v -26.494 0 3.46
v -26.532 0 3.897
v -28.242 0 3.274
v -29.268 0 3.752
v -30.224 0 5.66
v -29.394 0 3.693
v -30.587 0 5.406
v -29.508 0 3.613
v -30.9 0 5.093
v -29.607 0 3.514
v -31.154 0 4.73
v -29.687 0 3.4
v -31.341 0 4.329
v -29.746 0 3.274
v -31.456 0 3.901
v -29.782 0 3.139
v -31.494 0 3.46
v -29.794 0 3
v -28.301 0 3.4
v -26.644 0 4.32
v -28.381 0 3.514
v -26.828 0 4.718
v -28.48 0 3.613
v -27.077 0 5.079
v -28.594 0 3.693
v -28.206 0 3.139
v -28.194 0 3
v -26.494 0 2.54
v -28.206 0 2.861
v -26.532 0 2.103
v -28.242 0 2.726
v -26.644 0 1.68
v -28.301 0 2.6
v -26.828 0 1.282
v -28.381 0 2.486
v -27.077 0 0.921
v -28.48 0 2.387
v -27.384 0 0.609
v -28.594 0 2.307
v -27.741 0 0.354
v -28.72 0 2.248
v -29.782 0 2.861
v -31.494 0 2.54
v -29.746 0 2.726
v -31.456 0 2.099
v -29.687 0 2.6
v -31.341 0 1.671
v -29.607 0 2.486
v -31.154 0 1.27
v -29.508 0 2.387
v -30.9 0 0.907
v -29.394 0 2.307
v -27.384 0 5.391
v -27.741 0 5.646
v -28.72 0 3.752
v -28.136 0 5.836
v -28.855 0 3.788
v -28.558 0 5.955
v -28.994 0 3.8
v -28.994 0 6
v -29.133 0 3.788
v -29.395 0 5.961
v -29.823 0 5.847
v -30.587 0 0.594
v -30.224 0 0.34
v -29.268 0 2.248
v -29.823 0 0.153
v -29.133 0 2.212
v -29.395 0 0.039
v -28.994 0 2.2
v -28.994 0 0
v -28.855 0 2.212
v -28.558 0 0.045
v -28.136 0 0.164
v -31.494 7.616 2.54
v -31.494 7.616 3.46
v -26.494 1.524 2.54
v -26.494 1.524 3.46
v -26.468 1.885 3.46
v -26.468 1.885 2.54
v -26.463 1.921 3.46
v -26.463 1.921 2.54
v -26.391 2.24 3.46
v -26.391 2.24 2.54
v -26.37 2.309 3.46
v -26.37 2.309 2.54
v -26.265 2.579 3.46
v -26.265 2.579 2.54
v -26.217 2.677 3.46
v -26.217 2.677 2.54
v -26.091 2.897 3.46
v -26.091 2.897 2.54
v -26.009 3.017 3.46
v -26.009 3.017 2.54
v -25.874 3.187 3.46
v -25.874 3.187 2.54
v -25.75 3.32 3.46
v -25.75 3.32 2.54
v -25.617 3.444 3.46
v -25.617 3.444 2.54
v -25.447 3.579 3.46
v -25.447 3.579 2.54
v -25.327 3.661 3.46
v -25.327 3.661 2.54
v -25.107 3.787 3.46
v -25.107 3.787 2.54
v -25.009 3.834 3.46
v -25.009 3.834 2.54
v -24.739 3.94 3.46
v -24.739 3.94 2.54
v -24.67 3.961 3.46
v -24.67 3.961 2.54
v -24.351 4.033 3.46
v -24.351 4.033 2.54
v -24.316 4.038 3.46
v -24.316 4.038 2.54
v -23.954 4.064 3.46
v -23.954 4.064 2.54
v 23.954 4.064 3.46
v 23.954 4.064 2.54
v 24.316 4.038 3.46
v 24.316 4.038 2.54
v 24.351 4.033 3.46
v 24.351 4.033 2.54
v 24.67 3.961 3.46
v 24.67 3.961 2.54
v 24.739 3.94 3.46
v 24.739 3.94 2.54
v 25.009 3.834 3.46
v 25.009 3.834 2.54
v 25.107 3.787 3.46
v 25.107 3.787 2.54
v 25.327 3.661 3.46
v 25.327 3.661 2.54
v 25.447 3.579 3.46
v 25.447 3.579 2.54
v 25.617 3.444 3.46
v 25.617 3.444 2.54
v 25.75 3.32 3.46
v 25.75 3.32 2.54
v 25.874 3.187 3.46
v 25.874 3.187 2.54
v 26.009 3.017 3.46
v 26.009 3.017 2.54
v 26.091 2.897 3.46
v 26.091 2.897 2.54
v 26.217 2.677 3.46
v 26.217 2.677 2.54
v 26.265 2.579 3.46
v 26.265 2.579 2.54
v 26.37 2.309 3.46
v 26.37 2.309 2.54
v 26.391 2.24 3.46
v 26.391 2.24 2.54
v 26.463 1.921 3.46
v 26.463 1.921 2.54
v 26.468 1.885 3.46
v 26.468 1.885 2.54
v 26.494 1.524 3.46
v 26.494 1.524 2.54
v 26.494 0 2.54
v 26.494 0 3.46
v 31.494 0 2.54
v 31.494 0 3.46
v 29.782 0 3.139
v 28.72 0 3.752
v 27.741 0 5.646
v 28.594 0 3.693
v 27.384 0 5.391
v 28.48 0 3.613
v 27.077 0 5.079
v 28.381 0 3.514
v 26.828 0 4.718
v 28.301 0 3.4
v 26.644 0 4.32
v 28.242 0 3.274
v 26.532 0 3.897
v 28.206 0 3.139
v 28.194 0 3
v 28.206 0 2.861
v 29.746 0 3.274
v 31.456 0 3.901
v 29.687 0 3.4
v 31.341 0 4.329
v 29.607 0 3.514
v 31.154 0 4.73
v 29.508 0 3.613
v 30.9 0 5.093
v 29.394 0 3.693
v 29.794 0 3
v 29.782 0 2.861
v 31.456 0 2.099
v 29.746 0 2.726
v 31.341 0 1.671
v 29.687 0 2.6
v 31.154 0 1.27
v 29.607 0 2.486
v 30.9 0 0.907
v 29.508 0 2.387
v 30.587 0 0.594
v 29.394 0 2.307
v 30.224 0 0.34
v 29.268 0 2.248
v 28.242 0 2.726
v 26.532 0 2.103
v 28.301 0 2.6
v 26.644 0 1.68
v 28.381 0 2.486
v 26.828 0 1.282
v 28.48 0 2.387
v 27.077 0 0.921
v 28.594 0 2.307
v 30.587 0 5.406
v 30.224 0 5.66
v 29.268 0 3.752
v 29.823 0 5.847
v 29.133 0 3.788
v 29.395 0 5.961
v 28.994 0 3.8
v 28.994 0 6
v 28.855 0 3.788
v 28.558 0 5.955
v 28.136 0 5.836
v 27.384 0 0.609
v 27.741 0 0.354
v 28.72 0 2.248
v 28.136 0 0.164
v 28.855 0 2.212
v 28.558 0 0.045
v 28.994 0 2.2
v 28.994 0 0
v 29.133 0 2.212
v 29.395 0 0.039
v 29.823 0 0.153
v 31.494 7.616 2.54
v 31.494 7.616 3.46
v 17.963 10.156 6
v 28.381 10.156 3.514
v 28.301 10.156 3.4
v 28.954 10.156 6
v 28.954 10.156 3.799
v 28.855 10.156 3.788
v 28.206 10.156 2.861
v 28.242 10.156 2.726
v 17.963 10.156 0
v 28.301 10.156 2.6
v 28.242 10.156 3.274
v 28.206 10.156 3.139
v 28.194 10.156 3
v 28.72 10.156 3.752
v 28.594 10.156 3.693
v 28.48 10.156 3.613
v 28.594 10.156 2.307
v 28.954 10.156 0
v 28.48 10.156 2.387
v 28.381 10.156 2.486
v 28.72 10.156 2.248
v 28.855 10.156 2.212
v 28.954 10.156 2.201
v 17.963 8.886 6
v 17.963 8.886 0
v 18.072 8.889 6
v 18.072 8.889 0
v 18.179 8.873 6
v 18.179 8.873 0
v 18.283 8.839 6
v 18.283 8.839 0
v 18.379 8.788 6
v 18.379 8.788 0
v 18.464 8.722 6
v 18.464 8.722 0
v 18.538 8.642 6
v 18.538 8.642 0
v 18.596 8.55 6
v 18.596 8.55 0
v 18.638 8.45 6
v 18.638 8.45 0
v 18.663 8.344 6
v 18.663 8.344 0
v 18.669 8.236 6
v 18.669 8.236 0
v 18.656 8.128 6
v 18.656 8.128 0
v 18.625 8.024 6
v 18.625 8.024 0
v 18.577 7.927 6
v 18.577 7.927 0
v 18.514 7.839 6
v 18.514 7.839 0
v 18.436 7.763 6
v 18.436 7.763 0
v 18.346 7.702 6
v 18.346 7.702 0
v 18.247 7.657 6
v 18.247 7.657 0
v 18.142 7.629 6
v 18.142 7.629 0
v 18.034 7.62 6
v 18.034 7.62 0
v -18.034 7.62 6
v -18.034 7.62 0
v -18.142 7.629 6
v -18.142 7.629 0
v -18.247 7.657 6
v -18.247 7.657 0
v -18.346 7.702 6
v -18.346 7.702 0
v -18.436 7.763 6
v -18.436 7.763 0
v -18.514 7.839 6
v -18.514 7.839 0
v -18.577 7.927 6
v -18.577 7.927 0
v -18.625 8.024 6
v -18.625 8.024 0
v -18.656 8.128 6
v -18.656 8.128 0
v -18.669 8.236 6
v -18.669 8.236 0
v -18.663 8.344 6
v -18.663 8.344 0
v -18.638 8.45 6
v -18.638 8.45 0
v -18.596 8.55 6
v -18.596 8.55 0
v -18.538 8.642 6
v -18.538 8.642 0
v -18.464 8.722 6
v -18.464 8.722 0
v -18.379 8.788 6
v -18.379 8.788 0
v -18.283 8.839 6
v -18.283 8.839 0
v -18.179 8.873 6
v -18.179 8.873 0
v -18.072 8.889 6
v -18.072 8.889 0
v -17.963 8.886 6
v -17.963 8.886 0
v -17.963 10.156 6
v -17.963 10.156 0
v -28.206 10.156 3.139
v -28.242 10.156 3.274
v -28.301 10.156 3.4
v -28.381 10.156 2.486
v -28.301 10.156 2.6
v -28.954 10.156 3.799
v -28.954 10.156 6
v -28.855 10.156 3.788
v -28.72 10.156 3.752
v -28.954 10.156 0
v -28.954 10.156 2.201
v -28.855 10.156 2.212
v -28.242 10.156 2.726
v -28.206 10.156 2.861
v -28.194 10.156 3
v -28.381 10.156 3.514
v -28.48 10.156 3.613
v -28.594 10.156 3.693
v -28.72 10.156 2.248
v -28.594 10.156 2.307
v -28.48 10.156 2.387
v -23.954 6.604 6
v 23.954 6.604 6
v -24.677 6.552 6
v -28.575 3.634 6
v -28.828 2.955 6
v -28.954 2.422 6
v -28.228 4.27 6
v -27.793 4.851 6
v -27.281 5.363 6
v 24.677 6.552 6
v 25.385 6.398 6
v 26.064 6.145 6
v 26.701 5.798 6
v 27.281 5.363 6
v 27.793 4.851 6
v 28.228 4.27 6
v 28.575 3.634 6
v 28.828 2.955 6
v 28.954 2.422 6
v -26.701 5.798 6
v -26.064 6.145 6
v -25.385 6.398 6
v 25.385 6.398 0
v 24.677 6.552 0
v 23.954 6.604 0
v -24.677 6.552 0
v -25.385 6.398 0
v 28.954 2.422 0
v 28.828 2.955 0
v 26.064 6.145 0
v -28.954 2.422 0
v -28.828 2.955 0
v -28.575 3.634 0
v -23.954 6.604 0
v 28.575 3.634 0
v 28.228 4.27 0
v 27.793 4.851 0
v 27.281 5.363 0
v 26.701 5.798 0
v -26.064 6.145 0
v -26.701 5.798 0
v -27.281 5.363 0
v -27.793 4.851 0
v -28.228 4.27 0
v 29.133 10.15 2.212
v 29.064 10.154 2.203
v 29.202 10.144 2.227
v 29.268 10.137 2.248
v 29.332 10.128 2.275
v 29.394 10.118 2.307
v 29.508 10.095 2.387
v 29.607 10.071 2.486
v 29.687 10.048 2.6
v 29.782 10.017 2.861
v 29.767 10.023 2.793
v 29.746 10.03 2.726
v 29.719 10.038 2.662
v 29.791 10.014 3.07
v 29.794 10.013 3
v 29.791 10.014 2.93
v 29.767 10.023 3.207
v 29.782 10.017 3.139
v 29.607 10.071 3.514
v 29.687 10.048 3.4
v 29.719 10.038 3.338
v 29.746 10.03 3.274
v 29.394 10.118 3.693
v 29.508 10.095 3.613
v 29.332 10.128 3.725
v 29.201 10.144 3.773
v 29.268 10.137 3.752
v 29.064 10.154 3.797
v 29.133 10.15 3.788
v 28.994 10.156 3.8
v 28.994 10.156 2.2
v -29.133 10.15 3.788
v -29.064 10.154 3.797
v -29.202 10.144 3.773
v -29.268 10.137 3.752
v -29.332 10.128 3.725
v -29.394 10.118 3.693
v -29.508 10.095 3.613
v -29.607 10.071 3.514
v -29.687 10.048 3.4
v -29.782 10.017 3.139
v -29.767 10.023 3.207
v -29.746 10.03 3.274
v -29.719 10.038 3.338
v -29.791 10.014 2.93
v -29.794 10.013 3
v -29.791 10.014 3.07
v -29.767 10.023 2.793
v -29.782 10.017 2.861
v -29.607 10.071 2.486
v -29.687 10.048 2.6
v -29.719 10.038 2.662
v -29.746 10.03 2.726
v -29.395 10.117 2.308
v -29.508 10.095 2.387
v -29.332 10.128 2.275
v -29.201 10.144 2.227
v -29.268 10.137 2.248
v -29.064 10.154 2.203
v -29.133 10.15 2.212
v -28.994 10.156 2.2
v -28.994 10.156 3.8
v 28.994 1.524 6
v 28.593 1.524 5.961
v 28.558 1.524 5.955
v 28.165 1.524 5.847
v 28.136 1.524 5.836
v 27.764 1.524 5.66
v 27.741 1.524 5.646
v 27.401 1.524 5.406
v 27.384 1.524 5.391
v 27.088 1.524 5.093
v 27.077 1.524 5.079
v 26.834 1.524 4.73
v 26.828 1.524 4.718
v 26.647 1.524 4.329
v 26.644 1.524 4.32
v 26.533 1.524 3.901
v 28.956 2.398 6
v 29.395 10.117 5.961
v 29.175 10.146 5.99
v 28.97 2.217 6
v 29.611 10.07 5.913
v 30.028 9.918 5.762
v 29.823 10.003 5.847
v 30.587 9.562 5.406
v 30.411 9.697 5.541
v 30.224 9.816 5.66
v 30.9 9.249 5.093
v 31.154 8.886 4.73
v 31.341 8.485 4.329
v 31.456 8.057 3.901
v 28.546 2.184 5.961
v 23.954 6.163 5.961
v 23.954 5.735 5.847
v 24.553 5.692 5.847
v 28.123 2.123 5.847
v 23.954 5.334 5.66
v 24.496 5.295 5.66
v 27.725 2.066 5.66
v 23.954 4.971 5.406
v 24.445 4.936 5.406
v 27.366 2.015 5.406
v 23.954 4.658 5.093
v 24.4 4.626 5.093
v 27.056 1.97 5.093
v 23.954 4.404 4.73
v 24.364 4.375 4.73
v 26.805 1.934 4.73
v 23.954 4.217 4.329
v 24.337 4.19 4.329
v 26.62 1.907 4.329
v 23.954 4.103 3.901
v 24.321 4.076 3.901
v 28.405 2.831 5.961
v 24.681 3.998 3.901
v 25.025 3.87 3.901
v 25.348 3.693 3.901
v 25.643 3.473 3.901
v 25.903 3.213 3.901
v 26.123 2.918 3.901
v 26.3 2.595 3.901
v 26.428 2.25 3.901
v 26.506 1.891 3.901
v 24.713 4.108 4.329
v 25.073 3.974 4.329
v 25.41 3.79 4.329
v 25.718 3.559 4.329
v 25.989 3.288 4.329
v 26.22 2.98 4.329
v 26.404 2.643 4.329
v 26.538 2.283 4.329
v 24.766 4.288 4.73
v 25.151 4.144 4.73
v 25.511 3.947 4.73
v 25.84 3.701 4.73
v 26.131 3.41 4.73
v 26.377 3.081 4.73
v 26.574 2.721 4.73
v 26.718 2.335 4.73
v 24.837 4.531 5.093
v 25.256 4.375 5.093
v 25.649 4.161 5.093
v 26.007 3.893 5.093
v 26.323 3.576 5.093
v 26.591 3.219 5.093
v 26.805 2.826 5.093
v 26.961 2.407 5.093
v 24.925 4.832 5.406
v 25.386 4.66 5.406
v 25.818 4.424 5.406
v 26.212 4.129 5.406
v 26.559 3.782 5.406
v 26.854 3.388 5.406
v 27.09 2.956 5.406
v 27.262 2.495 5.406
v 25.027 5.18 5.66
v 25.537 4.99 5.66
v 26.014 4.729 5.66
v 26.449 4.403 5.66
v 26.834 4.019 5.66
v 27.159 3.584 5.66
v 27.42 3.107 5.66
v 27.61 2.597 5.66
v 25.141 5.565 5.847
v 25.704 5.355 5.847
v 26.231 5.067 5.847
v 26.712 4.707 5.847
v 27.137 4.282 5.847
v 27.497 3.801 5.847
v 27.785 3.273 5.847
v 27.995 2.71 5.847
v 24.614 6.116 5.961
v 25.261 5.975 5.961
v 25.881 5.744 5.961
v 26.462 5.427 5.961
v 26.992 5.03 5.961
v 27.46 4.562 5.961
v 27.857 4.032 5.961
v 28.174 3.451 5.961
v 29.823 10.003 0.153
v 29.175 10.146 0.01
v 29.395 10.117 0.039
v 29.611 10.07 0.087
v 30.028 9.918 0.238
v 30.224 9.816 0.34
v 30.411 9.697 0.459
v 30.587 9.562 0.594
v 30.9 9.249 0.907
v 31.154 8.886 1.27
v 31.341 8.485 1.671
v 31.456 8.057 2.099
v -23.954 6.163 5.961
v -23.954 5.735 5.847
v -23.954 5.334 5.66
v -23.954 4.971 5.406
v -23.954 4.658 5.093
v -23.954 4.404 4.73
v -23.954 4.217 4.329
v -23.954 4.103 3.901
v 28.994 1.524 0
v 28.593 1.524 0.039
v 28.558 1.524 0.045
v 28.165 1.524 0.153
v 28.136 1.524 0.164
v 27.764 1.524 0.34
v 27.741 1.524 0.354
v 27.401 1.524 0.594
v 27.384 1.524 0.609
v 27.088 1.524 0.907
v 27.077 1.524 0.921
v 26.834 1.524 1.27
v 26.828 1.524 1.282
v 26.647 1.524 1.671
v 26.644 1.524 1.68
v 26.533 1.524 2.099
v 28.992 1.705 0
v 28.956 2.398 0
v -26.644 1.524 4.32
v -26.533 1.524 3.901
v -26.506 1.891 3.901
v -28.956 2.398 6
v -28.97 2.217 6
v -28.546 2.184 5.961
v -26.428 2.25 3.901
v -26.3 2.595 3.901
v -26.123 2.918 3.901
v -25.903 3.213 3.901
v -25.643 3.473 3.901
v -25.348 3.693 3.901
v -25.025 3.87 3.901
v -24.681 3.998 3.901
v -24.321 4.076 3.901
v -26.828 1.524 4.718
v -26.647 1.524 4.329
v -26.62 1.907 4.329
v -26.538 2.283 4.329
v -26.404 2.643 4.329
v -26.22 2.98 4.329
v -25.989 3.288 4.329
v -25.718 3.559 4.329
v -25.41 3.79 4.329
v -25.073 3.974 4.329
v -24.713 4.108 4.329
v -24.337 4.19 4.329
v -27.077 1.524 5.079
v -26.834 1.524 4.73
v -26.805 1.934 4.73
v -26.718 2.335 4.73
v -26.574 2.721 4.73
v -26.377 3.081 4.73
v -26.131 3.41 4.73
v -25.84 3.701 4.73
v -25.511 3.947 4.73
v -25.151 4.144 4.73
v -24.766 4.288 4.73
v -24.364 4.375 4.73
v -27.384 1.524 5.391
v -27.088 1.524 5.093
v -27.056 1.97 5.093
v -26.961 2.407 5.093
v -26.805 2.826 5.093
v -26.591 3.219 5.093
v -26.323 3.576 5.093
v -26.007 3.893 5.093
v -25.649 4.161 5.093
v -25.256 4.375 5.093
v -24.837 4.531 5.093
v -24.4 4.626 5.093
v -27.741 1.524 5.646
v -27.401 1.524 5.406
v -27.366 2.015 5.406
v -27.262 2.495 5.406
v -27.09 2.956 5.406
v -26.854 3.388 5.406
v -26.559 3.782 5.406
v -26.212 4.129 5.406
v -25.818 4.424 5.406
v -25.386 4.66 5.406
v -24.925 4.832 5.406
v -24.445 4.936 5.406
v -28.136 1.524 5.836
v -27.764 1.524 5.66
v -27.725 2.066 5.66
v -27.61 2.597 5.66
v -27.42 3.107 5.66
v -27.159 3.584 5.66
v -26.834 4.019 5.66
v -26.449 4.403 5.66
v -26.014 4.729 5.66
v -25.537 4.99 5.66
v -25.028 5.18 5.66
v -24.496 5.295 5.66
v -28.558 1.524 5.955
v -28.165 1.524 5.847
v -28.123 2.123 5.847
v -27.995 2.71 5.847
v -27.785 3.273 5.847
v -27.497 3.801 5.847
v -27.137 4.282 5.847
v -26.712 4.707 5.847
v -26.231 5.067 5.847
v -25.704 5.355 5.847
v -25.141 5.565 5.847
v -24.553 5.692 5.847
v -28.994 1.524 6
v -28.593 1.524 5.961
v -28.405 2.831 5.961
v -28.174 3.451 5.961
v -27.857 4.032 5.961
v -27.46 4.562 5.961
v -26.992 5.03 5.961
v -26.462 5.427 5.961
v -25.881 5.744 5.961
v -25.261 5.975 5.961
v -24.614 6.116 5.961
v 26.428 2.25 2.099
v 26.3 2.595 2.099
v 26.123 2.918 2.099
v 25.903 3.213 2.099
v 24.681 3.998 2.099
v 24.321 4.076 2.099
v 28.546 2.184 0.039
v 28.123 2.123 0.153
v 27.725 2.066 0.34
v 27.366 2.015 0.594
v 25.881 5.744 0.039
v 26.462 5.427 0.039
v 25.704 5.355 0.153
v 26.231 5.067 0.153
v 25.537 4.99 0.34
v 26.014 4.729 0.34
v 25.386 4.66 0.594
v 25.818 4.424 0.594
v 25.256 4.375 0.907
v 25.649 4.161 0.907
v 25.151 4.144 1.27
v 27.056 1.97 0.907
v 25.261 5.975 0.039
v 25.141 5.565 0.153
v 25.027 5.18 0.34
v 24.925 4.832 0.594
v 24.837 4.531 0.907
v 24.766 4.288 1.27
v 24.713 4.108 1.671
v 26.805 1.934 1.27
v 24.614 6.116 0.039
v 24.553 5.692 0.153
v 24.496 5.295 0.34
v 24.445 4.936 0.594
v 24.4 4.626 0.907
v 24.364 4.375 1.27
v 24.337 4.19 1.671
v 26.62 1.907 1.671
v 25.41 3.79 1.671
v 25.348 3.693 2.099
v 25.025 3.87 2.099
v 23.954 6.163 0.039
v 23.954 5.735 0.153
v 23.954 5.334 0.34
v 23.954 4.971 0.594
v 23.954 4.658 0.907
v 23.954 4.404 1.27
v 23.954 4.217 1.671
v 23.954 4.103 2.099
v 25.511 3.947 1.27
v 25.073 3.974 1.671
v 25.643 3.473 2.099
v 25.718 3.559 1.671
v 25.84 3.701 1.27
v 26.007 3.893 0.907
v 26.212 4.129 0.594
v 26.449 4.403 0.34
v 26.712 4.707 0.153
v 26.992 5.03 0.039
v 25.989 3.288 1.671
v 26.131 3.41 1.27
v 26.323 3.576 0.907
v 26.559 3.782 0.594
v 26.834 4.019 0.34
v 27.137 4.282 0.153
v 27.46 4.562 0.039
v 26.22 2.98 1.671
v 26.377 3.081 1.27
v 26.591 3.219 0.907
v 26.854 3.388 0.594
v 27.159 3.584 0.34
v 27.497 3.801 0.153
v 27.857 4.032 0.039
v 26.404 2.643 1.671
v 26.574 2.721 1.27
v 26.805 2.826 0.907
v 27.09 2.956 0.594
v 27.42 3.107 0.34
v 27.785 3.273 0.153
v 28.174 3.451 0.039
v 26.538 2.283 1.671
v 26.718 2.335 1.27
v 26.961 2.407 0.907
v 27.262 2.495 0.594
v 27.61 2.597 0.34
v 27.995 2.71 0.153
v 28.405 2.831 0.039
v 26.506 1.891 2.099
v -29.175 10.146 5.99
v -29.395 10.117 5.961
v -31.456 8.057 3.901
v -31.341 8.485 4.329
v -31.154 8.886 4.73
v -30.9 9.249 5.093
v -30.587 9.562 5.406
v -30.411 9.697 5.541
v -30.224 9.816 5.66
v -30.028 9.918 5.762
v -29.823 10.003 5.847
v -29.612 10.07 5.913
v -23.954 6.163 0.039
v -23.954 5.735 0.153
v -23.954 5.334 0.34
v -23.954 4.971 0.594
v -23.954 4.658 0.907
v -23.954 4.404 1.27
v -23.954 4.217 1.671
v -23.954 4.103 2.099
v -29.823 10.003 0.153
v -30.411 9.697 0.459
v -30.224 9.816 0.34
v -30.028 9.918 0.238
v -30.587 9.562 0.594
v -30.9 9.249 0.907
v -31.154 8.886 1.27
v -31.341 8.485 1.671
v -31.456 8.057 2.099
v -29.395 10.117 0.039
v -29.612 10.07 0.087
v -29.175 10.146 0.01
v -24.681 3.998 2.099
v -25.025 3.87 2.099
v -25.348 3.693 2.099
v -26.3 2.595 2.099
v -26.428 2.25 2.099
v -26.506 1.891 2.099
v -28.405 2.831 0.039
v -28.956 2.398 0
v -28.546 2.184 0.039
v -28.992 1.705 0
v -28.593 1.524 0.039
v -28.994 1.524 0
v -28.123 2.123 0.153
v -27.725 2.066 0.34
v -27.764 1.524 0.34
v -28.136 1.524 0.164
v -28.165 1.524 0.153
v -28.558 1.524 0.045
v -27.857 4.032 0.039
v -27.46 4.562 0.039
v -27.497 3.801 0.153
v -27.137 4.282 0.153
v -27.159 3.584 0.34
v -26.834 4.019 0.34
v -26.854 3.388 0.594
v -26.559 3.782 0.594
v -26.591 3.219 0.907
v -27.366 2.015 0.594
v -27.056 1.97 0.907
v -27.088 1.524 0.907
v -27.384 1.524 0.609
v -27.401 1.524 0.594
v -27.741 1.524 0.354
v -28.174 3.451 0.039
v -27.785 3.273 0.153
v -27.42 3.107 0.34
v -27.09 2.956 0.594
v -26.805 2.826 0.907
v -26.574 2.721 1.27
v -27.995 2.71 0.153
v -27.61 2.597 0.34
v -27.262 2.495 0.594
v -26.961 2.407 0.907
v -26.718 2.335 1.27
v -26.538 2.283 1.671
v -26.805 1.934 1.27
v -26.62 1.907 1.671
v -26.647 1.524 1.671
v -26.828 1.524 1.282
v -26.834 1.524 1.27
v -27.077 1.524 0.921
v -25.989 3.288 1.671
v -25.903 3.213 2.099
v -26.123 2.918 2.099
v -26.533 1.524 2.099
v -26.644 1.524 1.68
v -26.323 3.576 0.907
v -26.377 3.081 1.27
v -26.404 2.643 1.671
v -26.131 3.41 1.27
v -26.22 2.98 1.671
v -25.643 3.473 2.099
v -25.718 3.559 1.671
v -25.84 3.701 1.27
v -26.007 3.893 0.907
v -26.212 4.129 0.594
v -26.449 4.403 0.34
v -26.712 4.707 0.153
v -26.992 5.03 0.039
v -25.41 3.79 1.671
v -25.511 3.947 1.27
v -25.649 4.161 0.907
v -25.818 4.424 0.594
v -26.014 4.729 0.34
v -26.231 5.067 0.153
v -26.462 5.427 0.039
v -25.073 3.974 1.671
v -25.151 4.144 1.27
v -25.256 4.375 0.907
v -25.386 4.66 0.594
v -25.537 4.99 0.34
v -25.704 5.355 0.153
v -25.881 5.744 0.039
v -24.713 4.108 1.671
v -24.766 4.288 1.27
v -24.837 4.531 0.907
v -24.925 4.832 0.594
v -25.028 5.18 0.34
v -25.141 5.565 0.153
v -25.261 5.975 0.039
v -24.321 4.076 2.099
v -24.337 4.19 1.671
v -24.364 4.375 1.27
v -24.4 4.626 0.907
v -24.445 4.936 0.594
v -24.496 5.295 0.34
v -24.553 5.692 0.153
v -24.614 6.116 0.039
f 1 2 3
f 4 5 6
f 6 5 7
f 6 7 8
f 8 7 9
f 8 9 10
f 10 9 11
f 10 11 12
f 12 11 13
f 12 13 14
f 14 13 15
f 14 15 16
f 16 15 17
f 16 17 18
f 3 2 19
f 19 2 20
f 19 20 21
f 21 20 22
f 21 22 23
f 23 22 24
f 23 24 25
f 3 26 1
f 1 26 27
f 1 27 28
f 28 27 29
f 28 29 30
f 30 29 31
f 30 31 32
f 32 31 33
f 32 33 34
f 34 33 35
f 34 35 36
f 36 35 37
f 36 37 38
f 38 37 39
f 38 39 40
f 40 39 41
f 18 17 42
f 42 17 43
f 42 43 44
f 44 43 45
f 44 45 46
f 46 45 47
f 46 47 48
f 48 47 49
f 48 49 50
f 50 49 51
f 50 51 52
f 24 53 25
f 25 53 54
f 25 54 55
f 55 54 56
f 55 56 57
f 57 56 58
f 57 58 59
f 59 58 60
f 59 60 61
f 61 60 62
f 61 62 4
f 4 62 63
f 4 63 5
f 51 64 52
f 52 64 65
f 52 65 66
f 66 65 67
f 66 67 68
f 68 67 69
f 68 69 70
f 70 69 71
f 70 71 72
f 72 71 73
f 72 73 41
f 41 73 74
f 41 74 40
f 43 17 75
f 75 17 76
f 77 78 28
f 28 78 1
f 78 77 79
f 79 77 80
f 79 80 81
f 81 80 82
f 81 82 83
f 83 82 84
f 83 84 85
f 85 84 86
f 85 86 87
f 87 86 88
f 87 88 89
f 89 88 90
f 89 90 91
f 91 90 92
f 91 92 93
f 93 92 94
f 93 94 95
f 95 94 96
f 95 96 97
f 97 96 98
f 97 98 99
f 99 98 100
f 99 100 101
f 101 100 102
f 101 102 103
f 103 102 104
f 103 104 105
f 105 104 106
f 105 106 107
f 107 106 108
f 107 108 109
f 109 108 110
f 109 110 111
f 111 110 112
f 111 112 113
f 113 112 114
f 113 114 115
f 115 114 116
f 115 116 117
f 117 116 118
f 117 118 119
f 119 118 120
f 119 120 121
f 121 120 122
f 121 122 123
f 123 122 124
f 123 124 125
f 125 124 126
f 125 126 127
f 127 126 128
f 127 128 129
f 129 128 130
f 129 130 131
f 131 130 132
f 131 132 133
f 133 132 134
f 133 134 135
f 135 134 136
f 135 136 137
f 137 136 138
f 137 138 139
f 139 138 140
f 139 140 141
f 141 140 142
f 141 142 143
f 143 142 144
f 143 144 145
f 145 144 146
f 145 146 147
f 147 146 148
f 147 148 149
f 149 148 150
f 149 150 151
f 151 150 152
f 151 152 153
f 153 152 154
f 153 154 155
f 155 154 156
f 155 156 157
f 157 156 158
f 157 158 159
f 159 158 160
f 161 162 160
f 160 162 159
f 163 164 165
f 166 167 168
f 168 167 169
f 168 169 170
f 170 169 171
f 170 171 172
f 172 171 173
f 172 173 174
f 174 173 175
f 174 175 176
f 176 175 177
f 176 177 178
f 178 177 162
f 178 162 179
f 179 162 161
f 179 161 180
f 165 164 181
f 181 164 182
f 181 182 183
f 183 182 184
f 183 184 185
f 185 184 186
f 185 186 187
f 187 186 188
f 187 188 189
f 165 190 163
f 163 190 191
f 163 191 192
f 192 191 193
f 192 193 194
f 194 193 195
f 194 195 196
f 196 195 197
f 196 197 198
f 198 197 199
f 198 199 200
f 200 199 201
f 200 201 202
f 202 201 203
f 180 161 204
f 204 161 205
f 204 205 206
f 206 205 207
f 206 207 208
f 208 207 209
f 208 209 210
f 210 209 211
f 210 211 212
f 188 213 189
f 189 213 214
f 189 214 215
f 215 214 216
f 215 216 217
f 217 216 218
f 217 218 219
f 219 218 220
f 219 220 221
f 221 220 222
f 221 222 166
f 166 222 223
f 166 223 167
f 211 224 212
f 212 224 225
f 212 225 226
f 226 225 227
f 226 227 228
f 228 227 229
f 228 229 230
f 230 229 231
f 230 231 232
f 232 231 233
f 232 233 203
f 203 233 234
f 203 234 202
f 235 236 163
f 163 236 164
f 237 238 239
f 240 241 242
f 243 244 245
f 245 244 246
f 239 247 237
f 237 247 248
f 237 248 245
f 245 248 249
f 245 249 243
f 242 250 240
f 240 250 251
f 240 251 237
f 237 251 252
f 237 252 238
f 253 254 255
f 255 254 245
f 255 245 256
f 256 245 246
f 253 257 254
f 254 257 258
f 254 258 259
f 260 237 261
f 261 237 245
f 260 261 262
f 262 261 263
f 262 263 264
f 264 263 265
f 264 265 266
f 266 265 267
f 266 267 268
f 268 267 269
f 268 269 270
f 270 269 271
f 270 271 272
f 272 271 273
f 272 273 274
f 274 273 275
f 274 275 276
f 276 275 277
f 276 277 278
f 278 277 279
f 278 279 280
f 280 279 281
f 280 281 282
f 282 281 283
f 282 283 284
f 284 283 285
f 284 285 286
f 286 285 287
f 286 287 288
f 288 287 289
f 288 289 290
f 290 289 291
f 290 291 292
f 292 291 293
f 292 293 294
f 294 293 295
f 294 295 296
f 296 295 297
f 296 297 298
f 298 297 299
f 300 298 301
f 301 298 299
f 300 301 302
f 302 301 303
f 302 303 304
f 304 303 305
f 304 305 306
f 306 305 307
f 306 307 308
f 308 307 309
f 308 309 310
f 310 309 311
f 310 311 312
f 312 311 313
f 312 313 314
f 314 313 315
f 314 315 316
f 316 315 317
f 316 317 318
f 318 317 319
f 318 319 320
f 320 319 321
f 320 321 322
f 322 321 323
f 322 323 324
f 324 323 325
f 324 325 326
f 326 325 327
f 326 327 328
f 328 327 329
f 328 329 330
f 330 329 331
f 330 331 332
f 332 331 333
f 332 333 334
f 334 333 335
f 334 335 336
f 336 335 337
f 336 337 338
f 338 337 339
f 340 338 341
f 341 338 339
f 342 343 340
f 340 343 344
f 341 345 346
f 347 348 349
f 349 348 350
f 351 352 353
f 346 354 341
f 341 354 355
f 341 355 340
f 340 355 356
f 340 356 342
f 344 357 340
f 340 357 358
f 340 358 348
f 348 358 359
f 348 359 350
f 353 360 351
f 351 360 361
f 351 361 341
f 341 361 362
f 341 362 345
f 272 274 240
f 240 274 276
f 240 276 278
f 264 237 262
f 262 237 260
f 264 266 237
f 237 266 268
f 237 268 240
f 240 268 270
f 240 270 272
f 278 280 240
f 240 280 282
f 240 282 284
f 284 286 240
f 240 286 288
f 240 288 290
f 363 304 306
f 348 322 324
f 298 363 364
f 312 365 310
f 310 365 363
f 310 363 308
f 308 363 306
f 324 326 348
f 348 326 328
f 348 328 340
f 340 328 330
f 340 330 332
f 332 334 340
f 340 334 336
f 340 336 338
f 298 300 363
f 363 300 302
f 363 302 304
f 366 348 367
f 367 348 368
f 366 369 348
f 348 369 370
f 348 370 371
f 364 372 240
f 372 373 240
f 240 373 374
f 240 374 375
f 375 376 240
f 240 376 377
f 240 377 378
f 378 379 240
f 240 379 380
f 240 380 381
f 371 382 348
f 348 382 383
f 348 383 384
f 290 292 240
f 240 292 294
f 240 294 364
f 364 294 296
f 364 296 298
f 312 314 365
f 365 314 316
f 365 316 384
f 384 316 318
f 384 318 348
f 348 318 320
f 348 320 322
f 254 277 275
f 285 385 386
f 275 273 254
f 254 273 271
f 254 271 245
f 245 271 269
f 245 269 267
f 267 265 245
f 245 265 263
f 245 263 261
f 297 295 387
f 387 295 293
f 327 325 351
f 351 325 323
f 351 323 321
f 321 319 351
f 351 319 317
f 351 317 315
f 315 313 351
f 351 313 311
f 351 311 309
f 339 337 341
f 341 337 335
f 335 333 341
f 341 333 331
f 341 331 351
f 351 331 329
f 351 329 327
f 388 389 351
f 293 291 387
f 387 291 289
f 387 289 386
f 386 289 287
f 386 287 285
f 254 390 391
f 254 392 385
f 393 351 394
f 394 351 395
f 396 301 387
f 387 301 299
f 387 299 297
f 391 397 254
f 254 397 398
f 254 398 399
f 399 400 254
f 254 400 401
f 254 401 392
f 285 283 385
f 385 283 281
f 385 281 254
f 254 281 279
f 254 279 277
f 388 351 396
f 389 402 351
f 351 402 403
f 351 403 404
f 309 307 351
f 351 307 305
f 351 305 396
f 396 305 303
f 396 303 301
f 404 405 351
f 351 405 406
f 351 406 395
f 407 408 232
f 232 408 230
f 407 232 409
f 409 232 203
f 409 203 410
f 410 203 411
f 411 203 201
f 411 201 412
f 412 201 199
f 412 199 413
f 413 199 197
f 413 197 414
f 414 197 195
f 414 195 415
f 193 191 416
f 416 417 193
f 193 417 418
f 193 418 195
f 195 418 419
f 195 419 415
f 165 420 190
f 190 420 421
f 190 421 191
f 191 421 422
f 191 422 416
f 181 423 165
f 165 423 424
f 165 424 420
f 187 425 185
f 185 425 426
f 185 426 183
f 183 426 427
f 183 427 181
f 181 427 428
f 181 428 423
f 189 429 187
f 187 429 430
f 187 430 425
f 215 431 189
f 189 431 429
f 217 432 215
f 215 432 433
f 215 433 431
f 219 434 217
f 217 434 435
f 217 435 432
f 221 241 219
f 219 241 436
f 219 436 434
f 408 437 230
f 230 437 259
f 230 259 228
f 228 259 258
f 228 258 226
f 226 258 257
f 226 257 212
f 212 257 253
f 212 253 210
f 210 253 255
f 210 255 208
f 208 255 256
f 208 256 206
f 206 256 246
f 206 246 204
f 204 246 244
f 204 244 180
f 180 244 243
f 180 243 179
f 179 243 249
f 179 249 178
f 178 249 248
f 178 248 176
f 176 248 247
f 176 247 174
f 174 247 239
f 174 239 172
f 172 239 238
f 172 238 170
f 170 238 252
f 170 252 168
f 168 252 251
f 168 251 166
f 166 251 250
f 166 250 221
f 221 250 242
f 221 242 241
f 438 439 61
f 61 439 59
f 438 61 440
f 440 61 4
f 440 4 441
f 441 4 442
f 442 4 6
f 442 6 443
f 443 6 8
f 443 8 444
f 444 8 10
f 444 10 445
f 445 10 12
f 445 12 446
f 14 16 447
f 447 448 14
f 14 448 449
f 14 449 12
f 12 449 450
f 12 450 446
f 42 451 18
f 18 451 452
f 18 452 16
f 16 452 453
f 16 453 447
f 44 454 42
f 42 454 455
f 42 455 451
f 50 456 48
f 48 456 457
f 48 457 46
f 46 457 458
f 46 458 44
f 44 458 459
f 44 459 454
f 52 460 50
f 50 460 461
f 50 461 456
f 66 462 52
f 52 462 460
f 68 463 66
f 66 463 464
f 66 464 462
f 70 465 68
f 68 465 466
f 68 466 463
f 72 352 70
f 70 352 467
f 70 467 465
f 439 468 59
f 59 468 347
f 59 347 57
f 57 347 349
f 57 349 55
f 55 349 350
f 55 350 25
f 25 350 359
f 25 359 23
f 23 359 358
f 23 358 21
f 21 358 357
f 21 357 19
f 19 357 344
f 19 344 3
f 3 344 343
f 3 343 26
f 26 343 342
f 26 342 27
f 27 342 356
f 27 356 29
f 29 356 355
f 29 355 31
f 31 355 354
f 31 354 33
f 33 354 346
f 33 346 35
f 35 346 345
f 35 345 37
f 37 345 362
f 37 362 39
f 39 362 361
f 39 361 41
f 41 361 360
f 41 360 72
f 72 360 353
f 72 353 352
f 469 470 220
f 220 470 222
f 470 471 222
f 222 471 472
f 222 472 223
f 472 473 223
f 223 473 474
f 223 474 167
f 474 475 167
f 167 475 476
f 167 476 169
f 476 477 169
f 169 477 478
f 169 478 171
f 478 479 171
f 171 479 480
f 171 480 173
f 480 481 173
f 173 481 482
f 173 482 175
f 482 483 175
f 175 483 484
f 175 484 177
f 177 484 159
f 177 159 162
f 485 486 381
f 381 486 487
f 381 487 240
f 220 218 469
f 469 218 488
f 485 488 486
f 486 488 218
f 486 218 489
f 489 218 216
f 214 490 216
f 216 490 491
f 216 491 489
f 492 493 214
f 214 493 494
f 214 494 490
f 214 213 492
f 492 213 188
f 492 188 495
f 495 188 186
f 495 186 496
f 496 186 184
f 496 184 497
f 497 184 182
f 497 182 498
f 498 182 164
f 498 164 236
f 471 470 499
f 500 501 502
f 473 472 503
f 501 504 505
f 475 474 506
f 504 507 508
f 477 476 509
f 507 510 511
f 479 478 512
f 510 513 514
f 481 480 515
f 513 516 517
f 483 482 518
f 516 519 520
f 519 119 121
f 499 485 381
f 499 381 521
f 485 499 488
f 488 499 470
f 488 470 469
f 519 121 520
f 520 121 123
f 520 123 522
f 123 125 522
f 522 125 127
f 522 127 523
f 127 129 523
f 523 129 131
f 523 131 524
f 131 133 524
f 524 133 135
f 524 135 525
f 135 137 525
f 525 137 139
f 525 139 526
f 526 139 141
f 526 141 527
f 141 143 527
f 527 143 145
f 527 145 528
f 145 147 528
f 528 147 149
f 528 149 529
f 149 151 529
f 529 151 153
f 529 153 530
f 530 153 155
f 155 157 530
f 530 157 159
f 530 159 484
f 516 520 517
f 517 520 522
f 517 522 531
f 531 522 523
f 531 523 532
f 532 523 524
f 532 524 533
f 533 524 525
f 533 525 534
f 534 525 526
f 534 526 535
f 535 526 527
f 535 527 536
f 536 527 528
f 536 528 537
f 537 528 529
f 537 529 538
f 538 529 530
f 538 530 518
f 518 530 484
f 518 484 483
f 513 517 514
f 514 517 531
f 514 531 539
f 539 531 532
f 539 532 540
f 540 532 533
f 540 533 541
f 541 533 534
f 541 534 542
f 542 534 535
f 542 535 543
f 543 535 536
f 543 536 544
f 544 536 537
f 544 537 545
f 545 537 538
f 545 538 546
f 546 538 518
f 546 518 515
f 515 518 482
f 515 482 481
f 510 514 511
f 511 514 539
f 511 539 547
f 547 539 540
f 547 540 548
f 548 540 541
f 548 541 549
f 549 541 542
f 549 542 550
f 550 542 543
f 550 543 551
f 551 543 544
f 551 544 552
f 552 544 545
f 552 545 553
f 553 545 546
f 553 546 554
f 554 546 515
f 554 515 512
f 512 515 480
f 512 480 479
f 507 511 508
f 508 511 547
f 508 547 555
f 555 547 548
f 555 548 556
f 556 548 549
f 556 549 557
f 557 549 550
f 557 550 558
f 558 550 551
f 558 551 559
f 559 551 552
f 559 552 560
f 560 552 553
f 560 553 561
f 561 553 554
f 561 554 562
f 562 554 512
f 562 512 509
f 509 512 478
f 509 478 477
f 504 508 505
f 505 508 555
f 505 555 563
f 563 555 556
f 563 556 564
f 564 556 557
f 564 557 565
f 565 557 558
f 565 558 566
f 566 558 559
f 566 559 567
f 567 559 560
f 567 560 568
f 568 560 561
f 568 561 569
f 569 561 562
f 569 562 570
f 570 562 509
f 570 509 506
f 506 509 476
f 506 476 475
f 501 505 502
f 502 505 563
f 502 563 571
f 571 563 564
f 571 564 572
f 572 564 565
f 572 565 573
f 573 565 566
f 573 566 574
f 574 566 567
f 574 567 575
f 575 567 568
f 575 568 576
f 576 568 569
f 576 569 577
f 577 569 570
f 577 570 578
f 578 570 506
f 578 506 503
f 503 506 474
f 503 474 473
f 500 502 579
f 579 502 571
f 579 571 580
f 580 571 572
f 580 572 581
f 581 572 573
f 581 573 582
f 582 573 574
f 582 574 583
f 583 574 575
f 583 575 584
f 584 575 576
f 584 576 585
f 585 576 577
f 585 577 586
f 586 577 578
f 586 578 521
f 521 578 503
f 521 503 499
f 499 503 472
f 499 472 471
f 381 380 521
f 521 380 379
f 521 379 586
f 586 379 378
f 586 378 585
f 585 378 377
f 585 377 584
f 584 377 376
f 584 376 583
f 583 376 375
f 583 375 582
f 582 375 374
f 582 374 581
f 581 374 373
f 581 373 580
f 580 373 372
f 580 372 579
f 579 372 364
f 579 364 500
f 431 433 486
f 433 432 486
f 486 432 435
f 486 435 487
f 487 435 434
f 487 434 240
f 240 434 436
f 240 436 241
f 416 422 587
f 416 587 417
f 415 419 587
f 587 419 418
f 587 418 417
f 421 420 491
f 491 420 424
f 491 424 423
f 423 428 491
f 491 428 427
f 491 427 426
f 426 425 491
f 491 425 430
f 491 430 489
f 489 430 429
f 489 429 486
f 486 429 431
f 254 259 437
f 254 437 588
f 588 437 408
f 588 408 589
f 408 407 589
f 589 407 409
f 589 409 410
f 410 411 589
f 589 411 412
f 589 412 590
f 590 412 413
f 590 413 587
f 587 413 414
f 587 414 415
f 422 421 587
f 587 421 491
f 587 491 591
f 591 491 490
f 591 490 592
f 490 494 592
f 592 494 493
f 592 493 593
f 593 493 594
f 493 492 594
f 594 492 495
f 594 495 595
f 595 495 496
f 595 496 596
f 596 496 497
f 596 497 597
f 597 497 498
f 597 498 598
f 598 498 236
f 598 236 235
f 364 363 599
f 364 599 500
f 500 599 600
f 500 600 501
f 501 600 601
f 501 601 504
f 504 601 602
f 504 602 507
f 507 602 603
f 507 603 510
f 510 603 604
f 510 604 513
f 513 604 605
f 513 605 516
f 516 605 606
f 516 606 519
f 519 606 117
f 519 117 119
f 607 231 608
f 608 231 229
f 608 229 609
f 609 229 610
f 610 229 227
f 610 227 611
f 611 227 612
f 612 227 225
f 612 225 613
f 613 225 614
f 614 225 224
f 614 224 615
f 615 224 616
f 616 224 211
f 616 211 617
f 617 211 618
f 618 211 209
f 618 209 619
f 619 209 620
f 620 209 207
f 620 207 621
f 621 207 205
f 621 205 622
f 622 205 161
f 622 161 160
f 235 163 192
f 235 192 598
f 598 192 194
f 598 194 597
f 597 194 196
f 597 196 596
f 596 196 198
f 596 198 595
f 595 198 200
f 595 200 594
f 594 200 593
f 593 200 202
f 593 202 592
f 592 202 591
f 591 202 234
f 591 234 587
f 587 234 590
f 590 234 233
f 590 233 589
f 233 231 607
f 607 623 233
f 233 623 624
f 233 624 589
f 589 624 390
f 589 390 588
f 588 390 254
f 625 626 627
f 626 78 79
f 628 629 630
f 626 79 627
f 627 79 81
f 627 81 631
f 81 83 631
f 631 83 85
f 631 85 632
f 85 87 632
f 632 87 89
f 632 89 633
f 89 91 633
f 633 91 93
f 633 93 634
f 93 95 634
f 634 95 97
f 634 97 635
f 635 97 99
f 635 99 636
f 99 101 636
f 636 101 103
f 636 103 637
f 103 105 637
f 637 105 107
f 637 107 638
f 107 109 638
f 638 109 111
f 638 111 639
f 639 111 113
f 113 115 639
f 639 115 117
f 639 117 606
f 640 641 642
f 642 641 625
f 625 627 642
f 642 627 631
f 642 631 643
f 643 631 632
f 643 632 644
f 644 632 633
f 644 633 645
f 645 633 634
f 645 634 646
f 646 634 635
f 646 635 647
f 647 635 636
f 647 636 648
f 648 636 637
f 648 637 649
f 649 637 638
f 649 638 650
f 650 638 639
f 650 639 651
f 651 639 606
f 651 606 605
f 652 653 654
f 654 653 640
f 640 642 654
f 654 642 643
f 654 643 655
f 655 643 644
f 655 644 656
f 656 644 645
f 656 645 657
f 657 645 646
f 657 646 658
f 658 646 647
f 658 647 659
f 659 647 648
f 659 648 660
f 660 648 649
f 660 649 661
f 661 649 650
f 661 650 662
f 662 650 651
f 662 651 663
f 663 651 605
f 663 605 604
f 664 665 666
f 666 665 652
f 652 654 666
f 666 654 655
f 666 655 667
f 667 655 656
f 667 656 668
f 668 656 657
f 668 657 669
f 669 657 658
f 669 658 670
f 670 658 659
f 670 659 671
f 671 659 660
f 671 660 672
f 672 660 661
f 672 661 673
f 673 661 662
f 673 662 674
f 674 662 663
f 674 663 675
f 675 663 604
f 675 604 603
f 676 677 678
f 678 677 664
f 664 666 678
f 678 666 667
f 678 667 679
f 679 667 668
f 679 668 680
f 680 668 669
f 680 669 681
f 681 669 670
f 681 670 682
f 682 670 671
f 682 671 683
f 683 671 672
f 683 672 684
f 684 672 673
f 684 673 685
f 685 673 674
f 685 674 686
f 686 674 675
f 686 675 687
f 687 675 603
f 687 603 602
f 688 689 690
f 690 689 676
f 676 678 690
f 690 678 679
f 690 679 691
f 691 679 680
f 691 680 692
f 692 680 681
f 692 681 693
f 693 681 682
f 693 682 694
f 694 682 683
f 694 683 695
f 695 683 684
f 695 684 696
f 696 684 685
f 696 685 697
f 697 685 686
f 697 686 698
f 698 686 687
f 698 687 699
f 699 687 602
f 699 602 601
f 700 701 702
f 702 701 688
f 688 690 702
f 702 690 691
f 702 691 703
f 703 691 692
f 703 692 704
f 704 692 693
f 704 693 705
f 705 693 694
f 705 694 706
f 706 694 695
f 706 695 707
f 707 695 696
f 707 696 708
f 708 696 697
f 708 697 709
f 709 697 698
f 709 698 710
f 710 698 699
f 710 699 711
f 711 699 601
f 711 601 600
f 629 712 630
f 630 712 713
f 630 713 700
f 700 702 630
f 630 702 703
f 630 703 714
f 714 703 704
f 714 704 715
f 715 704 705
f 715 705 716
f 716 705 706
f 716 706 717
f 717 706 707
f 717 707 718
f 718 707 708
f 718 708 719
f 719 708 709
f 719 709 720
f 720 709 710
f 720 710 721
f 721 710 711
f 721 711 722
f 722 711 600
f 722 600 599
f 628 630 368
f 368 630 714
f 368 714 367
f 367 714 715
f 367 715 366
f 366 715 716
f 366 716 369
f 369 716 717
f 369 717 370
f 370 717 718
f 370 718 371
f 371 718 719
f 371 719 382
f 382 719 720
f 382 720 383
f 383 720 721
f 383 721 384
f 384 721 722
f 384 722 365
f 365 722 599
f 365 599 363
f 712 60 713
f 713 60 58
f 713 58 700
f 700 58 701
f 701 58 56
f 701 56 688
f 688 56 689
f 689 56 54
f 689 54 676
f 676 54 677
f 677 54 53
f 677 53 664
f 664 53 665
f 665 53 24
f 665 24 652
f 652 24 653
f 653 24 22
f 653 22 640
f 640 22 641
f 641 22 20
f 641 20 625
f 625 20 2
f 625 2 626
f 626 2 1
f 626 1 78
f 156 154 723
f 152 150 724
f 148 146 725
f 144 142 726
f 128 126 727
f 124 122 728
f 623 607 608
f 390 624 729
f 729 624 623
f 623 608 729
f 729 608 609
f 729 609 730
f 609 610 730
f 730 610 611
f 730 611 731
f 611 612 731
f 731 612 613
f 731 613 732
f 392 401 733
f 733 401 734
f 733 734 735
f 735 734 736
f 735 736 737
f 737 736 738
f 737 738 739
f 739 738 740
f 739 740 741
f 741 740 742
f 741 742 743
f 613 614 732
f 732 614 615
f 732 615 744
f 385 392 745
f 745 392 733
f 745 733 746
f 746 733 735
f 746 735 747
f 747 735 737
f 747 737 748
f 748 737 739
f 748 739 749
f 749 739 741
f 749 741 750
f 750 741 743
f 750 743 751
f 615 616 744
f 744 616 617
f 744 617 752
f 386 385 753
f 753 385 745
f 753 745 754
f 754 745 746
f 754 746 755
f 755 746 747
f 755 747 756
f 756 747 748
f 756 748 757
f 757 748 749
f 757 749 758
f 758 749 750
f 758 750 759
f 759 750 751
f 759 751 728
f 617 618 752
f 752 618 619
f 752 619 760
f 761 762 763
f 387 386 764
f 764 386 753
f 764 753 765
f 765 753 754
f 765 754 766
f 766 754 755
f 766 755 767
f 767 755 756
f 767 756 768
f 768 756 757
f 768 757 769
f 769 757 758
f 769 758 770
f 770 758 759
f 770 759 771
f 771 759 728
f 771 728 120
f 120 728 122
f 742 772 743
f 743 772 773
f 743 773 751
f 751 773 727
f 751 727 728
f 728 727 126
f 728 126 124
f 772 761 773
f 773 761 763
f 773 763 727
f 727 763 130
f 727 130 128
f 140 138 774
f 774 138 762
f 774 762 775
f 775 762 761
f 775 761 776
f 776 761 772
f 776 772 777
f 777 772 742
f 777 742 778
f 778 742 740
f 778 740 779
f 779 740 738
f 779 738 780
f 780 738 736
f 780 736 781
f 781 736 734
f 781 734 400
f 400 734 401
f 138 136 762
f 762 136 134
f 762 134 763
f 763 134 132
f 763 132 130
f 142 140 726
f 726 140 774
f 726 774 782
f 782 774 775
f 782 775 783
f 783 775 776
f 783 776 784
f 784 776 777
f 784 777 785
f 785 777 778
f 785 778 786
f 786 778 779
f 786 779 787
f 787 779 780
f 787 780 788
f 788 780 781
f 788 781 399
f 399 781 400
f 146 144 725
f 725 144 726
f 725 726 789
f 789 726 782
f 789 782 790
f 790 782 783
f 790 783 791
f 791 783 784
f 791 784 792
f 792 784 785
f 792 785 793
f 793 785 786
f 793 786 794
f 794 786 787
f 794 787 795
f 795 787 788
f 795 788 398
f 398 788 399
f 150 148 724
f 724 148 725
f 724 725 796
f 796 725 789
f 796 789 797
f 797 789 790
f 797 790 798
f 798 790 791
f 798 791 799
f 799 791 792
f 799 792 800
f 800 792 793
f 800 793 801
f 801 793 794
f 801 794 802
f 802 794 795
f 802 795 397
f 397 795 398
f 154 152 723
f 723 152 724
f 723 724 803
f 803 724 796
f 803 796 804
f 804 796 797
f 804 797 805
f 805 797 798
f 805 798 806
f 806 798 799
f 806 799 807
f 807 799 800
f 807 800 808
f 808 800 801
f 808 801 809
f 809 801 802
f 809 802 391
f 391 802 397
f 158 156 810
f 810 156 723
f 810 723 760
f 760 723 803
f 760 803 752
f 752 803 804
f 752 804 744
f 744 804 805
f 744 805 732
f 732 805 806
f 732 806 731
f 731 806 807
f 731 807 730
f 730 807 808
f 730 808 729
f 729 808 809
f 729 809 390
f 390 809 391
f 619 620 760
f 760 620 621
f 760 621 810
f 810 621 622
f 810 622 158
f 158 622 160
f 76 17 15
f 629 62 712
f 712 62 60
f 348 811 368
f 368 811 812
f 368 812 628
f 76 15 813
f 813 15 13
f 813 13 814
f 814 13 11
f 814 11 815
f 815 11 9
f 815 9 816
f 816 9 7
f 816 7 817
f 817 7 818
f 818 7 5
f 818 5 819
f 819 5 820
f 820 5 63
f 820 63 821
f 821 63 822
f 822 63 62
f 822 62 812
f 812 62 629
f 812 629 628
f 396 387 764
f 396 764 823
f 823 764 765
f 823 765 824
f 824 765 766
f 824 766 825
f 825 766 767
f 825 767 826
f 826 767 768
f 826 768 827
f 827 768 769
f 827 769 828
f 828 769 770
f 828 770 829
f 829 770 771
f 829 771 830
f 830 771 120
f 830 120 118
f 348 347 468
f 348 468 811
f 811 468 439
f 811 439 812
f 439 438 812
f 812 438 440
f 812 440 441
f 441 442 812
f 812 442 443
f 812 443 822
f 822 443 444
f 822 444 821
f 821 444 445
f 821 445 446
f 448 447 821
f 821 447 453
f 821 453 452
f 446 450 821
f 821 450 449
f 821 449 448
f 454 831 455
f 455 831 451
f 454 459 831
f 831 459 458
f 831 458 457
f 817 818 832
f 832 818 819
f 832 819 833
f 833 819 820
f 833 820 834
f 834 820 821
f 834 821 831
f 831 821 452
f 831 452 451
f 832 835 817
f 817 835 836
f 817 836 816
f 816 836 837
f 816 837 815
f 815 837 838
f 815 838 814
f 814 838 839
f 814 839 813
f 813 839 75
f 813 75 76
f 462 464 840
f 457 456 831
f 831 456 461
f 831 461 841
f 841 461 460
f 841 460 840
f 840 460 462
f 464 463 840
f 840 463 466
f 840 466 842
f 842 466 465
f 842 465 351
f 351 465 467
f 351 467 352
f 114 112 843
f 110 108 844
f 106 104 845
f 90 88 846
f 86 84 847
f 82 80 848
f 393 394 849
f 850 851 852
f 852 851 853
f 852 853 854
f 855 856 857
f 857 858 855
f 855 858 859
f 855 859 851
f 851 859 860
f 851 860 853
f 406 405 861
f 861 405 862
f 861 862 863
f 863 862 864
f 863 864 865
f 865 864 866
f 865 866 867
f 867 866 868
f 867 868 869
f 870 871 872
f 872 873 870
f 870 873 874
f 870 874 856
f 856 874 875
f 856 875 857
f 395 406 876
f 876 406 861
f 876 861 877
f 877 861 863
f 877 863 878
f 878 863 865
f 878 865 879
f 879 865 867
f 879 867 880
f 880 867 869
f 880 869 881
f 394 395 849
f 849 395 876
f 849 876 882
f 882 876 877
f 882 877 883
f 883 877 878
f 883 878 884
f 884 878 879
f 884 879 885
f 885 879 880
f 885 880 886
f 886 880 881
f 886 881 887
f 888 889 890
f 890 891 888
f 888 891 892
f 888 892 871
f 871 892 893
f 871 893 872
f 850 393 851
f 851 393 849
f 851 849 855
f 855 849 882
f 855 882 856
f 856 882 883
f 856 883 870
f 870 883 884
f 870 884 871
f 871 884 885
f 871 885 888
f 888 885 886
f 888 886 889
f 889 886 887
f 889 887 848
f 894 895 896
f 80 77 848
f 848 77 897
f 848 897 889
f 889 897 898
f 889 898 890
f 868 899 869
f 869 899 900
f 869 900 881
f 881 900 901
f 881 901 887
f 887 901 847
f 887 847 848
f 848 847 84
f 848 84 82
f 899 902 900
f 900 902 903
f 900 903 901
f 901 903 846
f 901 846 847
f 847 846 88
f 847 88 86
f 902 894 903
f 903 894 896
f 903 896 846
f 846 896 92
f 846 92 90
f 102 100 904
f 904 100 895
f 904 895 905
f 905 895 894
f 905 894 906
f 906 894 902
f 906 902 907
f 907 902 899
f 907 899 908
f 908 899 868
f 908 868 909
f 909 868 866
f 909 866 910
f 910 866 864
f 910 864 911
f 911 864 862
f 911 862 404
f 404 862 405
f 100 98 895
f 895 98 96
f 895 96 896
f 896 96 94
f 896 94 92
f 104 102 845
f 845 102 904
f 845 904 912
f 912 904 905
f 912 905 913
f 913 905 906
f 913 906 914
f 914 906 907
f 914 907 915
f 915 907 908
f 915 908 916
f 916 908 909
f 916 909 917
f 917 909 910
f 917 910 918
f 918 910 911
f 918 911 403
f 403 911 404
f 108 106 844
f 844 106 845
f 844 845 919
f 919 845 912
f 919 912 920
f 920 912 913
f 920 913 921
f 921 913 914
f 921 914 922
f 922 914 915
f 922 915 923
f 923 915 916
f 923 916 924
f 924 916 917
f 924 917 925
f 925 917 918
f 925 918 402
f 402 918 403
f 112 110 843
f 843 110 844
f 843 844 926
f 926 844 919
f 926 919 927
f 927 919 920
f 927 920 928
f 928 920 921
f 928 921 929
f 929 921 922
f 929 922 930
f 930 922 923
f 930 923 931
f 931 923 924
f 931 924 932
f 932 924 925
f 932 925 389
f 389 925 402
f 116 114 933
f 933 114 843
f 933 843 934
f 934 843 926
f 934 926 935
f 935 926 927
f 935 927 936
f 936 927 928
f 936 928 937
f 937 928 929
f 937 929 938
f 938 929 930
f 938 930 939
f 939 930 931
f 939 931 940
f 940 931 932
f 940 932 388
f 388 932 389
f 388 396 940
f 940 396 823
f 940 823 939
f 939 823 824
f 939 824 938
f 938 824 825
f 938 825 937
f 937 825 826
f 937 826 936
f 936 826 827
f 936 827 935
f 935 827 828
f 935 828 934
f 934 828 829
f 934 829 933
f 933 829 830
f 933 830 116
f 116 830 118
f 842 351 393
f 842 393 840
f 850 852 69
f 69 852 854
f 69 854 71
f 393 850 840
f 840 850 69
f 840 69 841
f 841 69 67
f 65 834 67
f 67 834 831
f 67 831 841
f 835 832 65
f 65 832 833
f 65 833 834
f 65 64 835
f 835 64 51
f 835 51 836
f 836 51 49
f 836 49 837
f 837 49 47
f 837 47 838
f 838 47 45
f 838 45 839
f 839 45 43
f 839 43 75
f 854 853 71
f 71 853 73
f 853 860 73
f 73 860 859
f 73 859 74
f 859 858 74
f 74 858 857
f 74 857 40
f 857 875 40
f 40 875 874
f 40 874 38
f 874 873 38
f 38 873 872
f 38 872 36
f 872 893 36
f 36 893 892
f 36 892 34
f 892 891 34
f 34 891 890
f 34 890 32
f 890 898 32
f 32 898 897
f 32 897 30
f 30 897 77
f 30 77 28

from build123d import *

# Parameters (mm, degrees)
BOSS_EXTRUDE1_DEPTH   = 6
M2X0_4_TAPPED_HOLE1_D = 1.6
FILLET1_R             = 2.54


with BuildPart() as part:
    # Sketch1 → Boss-Extrude1 (new body)
    with BuildSketch(Plane.XY):
        with BuildLine():
            Line((-31.4941, 0), (-26.4941, 0))
            Line((-26.4941, 0), (-26.4941, 1.524))
            ThreePointArc((-26.4941, 1.524), (-25.750151224, 3.320051224), (-23.9541, 4.064))
            Line((-23.9541, 4.064), (23.9541, 4.064))
            ThreePointArc((23.9541, 4.064), (25.750151224, 3.320051224), (26.4941, 1.524))
            Line((26.4941, 1.524), (26.4941, 0))
            Line((26.4941, 0), (31.4941, 0))
            Line((31.4941, 0), (31.4941, 10.156063356))
            Line((31.4941, 10.156063356), (17.963402264, 10.156063356))
            Line((17.963402264, 10.156063356), (17.963402264, 8.886063356))
            ThreePointArc((17.963402264, 8.886063356), (18.668015075, 8.290353704), (18.034, 7.62))
            Line((18.034, 7.62), (-18.034, 7.62))
            ThreePointArc((-18.034, 7.62), (-18.668015075, 8.290353704), (-17.963402264, 8.886063356))
            Line((-17.963402264, 8.886063356), (-17.963402264, 10.156063356))
            Line((-17.963402264, 10.156063356), (-31.4941, 10.156063356))
            Line((-31.4941, 10.156063356), (-31.4941, 0))
        make_face()
    extrude(amount=BOSS_EXTRUDE1_DEPTH)

    # M2x0.4 Tapped Hole1 (through all)
    with Locations(Plane(origin=(0, 0, 0), x_dir=(-1, 0, 0), z_dir=(0, -1, 0))):
        with Locations((28.9941, -3), (-28.9941, -3)):
            Hole(M2X0_4_TAPPED_HOLE1_D / 2)

    # Fillet1
    # the kernel refuses this fillet: 2.54 mm, written as the material it takes off along each edge
    with BuildSketch(Plane(origin=(-26.4941, -6.35, 0), x_dir=(-1, 0, 0), z_dir=(0, 1, 0)), Plane(origin=(26.4941, 1.524, 0), x_dir=(1, 0, 0), z_dir=(0, -1, 0))) as fillet1_piece_1:
        with BuildLine():
            CenterArc((FILLET1_R, FILLET1_R), FILLET1_R, 180, 90)
            Line((0, FILLET1_R), (0, 0))
            Line((0, 0), (FILLET1_R, 0))
        make_face()
    extrude(amount=7.874, mode=Mode.SUBTRACT)
    with BuildSketch(Plane(origin=(-23.9541, 1.524, 0), x_dir=(-1, 0, 0), z_dir=(0, -1, 0))) as fillet1_piece_2:
        with BuildLine():
            CenterArc((2.54 + FILLET1_R, -FILLET1_R), FILLET1_R, 90, 90)
            Line((2.54, -FILLET1_R), (2.54, 0))
            Line((2.54, 0), (2.54 + FILLET1_R, 0))
        make_face()
    revolve(axis=Axis((-23.9541, 1.524, 0), (0, 0, -1)), revolution_arc=90, mode=Mode.SUBTRACT)
    with BuildSketch(Plane(origin=(23.9541, 1.524, 0), x_dir=(0, 1, 0), z_dir=(-1, 0, 0))) as fillet1_piece_3:
        with BuildLine():
            CenterArc((2.54 + FILLET1_R, -FILLET1_R), FILLET1_R, 90, 90)
            Line((2.54, -FILLET1_R), (2.54, 0))
            Line((2.54, 0), (2.54 + FILLET1_R, 0))
        make_face()
    revolve(axis=Axis((23.9541, 1.524, 0), (0, 0, -1)), revolution_arc=90, mode=Mode.SUBTRACT)
    with BuildSketch(Plane(origin=(-26.4941, -6.35, 6), x_dir=(-1, 0, 0), z_dir=(0, 1, 0)), Plane(origin=(26.4941, 1.524, 6), x_dir=(1, 0, 0), z_dir=(0, -1, 0))) as fillet1_piece_4:
        with BuildLine():
            CenterArc((FILLET1_R, -FILLET1_R), FILLET1_R, 90, 90)
            Line((0, -FILLET1_R), (0, 0))
            Line((0, 0), (FILLET1_R, 0))
        make_face()
    extrude(amount=7.874, mode=Mode.SUBTRACT)
    with BuildSketch(Plane(origin=(-23.9541, 1.524, 6), x_dir=(-1, 0, 0), z_dir=(0, -1, 0))) as fillet1_piece_5:
        with BuildLine():
            CenterArc((2.54 + FILLET1_R, FILLET1_R), FILLET1_R, 180, 90)
            Line((2.54, FILLET1_R), (2.54, 0))
            Line((2.54, 0), (2.54 + FILLET1_R, 0))
        make_face()
    revolve(axis=Axis((-23.9541, 1.524, 6), (0, 0, -1)), revolution_arc=90, mode=Mode.SUBTRACT)
    with BuildSketch(Plane(origin=(-23.9541, 4.064, 6), x_dir=(0, 1, 0), z_dir=(1, 0, 0))) as fillet1_piece_6:
        with BuildLine():
            CenterArc((FILLET1_R, -FILLET1_R), FILLET1_R, 90, 90)
            Line((0, -FILLET1_R), (0, 0))
            Line((0, 0), (FILLET1_R, 0))
        make_face()
    extrude(amount=47.9082, mode=Mode.SUBTRACT)
    with BuildSketch(Plane(origin=(23.9541, 1.524, 6), x_dir=(0, 1, 0), z_dir=(-1, 0, 0))) as fillet1_piece_7:
        with BuildLine():
            CenterArc((2.54 + FILLET1_R, FILLET1_R), FILLET1_R, 180, 90)
            Line((2.54, FILLET1_R), (2.54, 0))
            Line((2.54, 0), (2.54 + FILLET1_R, 0))
        make_face()
    revolve(axis=Axis((23.9541, 1.524, 6), (0, 0, -1)), revolution_arc=90, mode=Mode.SUBTRACT)
    with BuildSketch(Plane(origin=(-31.4941, 16.506063356, 0), x_dir=(1, 0, 0), z_dir=(0, -1, 0)), Plane(origin=(31.4941, -6.35, 0), x_dir=(-1, 0, 0), z_dir=(0, 1, 0))) as fillet1_piece_8:
        with BuildLine():
            CenterArc((FILLET1_R, FILLET1_R), FILLET1_R, 180, 90)
            Line((0, FILLET1_R), (0, 0))
            Line((0, 0), (FILLET1_R, 0))
        make_face()
    extrude(amount=22.856063356, mode=Mode.SUBTRACT)
    with BuildSketch(Plane(origin=(-31.4941, 16.506063356, 6), x_dir=(1, 0, 0), z_dir=(0, -1, 0)), Plane(origin=(31.4941, -6.35, 6), x_dir=(-1, 0, 0), z_dir=(0, 1, 0))) as fillet1_piece_9:
        with BuildLine():
            CenterArc((FILLET1_R, -FILLET1_R), FILLET1_R, 90, 90)
            Line((0, -FILLET1_R), (0, 0))
            Line((0, 0), (FILLET1_R, 0))
        make_face()
    extrude(amount=22.856063356, mode=Mode.SUBTRACT)
    with BuildSketch(Plane(origin=(-23.9541, 4.064, 0), x_dir=(0, 1, 0), z_dir=(1, 0, 0))) as fillet1_piece_10:
        with BuildLine():
            CenterArc((FILLET1_R, FILLET1_R), FILLET1_R, 180, 90)
            Line((0, FILLET1_R), (0, 0))
            Line((0, 0), (FILLET1_R, 0))
        make_face()
    extrude(amount=47.9082, mode=Mode.SUBTRACT)
    with BuildSketch(Plane(origin=(31.4941, 10.156063356, -6.35), x_dir=(0, -1, 0), z_dir=(0, 0, 1)), Plane(origin=(-31.4941, 10.156063356, -6.35), x_dir=(1, 0, 0), z_dir=(0, 0, 1))) as fillet1_piece_11:
        with BuildLine():
            CenterArc((FILLET1_R, -FILLET1_R), FILLET1_R, 90, 90)
            Line((0, -FILLET1_R), (0, 0))
            Line((0, 0), (FILLET1_R, 0))
        make_face()
    extrude(amount=18.7, mode=Mode.SUBTRACT)


solid = part.part
